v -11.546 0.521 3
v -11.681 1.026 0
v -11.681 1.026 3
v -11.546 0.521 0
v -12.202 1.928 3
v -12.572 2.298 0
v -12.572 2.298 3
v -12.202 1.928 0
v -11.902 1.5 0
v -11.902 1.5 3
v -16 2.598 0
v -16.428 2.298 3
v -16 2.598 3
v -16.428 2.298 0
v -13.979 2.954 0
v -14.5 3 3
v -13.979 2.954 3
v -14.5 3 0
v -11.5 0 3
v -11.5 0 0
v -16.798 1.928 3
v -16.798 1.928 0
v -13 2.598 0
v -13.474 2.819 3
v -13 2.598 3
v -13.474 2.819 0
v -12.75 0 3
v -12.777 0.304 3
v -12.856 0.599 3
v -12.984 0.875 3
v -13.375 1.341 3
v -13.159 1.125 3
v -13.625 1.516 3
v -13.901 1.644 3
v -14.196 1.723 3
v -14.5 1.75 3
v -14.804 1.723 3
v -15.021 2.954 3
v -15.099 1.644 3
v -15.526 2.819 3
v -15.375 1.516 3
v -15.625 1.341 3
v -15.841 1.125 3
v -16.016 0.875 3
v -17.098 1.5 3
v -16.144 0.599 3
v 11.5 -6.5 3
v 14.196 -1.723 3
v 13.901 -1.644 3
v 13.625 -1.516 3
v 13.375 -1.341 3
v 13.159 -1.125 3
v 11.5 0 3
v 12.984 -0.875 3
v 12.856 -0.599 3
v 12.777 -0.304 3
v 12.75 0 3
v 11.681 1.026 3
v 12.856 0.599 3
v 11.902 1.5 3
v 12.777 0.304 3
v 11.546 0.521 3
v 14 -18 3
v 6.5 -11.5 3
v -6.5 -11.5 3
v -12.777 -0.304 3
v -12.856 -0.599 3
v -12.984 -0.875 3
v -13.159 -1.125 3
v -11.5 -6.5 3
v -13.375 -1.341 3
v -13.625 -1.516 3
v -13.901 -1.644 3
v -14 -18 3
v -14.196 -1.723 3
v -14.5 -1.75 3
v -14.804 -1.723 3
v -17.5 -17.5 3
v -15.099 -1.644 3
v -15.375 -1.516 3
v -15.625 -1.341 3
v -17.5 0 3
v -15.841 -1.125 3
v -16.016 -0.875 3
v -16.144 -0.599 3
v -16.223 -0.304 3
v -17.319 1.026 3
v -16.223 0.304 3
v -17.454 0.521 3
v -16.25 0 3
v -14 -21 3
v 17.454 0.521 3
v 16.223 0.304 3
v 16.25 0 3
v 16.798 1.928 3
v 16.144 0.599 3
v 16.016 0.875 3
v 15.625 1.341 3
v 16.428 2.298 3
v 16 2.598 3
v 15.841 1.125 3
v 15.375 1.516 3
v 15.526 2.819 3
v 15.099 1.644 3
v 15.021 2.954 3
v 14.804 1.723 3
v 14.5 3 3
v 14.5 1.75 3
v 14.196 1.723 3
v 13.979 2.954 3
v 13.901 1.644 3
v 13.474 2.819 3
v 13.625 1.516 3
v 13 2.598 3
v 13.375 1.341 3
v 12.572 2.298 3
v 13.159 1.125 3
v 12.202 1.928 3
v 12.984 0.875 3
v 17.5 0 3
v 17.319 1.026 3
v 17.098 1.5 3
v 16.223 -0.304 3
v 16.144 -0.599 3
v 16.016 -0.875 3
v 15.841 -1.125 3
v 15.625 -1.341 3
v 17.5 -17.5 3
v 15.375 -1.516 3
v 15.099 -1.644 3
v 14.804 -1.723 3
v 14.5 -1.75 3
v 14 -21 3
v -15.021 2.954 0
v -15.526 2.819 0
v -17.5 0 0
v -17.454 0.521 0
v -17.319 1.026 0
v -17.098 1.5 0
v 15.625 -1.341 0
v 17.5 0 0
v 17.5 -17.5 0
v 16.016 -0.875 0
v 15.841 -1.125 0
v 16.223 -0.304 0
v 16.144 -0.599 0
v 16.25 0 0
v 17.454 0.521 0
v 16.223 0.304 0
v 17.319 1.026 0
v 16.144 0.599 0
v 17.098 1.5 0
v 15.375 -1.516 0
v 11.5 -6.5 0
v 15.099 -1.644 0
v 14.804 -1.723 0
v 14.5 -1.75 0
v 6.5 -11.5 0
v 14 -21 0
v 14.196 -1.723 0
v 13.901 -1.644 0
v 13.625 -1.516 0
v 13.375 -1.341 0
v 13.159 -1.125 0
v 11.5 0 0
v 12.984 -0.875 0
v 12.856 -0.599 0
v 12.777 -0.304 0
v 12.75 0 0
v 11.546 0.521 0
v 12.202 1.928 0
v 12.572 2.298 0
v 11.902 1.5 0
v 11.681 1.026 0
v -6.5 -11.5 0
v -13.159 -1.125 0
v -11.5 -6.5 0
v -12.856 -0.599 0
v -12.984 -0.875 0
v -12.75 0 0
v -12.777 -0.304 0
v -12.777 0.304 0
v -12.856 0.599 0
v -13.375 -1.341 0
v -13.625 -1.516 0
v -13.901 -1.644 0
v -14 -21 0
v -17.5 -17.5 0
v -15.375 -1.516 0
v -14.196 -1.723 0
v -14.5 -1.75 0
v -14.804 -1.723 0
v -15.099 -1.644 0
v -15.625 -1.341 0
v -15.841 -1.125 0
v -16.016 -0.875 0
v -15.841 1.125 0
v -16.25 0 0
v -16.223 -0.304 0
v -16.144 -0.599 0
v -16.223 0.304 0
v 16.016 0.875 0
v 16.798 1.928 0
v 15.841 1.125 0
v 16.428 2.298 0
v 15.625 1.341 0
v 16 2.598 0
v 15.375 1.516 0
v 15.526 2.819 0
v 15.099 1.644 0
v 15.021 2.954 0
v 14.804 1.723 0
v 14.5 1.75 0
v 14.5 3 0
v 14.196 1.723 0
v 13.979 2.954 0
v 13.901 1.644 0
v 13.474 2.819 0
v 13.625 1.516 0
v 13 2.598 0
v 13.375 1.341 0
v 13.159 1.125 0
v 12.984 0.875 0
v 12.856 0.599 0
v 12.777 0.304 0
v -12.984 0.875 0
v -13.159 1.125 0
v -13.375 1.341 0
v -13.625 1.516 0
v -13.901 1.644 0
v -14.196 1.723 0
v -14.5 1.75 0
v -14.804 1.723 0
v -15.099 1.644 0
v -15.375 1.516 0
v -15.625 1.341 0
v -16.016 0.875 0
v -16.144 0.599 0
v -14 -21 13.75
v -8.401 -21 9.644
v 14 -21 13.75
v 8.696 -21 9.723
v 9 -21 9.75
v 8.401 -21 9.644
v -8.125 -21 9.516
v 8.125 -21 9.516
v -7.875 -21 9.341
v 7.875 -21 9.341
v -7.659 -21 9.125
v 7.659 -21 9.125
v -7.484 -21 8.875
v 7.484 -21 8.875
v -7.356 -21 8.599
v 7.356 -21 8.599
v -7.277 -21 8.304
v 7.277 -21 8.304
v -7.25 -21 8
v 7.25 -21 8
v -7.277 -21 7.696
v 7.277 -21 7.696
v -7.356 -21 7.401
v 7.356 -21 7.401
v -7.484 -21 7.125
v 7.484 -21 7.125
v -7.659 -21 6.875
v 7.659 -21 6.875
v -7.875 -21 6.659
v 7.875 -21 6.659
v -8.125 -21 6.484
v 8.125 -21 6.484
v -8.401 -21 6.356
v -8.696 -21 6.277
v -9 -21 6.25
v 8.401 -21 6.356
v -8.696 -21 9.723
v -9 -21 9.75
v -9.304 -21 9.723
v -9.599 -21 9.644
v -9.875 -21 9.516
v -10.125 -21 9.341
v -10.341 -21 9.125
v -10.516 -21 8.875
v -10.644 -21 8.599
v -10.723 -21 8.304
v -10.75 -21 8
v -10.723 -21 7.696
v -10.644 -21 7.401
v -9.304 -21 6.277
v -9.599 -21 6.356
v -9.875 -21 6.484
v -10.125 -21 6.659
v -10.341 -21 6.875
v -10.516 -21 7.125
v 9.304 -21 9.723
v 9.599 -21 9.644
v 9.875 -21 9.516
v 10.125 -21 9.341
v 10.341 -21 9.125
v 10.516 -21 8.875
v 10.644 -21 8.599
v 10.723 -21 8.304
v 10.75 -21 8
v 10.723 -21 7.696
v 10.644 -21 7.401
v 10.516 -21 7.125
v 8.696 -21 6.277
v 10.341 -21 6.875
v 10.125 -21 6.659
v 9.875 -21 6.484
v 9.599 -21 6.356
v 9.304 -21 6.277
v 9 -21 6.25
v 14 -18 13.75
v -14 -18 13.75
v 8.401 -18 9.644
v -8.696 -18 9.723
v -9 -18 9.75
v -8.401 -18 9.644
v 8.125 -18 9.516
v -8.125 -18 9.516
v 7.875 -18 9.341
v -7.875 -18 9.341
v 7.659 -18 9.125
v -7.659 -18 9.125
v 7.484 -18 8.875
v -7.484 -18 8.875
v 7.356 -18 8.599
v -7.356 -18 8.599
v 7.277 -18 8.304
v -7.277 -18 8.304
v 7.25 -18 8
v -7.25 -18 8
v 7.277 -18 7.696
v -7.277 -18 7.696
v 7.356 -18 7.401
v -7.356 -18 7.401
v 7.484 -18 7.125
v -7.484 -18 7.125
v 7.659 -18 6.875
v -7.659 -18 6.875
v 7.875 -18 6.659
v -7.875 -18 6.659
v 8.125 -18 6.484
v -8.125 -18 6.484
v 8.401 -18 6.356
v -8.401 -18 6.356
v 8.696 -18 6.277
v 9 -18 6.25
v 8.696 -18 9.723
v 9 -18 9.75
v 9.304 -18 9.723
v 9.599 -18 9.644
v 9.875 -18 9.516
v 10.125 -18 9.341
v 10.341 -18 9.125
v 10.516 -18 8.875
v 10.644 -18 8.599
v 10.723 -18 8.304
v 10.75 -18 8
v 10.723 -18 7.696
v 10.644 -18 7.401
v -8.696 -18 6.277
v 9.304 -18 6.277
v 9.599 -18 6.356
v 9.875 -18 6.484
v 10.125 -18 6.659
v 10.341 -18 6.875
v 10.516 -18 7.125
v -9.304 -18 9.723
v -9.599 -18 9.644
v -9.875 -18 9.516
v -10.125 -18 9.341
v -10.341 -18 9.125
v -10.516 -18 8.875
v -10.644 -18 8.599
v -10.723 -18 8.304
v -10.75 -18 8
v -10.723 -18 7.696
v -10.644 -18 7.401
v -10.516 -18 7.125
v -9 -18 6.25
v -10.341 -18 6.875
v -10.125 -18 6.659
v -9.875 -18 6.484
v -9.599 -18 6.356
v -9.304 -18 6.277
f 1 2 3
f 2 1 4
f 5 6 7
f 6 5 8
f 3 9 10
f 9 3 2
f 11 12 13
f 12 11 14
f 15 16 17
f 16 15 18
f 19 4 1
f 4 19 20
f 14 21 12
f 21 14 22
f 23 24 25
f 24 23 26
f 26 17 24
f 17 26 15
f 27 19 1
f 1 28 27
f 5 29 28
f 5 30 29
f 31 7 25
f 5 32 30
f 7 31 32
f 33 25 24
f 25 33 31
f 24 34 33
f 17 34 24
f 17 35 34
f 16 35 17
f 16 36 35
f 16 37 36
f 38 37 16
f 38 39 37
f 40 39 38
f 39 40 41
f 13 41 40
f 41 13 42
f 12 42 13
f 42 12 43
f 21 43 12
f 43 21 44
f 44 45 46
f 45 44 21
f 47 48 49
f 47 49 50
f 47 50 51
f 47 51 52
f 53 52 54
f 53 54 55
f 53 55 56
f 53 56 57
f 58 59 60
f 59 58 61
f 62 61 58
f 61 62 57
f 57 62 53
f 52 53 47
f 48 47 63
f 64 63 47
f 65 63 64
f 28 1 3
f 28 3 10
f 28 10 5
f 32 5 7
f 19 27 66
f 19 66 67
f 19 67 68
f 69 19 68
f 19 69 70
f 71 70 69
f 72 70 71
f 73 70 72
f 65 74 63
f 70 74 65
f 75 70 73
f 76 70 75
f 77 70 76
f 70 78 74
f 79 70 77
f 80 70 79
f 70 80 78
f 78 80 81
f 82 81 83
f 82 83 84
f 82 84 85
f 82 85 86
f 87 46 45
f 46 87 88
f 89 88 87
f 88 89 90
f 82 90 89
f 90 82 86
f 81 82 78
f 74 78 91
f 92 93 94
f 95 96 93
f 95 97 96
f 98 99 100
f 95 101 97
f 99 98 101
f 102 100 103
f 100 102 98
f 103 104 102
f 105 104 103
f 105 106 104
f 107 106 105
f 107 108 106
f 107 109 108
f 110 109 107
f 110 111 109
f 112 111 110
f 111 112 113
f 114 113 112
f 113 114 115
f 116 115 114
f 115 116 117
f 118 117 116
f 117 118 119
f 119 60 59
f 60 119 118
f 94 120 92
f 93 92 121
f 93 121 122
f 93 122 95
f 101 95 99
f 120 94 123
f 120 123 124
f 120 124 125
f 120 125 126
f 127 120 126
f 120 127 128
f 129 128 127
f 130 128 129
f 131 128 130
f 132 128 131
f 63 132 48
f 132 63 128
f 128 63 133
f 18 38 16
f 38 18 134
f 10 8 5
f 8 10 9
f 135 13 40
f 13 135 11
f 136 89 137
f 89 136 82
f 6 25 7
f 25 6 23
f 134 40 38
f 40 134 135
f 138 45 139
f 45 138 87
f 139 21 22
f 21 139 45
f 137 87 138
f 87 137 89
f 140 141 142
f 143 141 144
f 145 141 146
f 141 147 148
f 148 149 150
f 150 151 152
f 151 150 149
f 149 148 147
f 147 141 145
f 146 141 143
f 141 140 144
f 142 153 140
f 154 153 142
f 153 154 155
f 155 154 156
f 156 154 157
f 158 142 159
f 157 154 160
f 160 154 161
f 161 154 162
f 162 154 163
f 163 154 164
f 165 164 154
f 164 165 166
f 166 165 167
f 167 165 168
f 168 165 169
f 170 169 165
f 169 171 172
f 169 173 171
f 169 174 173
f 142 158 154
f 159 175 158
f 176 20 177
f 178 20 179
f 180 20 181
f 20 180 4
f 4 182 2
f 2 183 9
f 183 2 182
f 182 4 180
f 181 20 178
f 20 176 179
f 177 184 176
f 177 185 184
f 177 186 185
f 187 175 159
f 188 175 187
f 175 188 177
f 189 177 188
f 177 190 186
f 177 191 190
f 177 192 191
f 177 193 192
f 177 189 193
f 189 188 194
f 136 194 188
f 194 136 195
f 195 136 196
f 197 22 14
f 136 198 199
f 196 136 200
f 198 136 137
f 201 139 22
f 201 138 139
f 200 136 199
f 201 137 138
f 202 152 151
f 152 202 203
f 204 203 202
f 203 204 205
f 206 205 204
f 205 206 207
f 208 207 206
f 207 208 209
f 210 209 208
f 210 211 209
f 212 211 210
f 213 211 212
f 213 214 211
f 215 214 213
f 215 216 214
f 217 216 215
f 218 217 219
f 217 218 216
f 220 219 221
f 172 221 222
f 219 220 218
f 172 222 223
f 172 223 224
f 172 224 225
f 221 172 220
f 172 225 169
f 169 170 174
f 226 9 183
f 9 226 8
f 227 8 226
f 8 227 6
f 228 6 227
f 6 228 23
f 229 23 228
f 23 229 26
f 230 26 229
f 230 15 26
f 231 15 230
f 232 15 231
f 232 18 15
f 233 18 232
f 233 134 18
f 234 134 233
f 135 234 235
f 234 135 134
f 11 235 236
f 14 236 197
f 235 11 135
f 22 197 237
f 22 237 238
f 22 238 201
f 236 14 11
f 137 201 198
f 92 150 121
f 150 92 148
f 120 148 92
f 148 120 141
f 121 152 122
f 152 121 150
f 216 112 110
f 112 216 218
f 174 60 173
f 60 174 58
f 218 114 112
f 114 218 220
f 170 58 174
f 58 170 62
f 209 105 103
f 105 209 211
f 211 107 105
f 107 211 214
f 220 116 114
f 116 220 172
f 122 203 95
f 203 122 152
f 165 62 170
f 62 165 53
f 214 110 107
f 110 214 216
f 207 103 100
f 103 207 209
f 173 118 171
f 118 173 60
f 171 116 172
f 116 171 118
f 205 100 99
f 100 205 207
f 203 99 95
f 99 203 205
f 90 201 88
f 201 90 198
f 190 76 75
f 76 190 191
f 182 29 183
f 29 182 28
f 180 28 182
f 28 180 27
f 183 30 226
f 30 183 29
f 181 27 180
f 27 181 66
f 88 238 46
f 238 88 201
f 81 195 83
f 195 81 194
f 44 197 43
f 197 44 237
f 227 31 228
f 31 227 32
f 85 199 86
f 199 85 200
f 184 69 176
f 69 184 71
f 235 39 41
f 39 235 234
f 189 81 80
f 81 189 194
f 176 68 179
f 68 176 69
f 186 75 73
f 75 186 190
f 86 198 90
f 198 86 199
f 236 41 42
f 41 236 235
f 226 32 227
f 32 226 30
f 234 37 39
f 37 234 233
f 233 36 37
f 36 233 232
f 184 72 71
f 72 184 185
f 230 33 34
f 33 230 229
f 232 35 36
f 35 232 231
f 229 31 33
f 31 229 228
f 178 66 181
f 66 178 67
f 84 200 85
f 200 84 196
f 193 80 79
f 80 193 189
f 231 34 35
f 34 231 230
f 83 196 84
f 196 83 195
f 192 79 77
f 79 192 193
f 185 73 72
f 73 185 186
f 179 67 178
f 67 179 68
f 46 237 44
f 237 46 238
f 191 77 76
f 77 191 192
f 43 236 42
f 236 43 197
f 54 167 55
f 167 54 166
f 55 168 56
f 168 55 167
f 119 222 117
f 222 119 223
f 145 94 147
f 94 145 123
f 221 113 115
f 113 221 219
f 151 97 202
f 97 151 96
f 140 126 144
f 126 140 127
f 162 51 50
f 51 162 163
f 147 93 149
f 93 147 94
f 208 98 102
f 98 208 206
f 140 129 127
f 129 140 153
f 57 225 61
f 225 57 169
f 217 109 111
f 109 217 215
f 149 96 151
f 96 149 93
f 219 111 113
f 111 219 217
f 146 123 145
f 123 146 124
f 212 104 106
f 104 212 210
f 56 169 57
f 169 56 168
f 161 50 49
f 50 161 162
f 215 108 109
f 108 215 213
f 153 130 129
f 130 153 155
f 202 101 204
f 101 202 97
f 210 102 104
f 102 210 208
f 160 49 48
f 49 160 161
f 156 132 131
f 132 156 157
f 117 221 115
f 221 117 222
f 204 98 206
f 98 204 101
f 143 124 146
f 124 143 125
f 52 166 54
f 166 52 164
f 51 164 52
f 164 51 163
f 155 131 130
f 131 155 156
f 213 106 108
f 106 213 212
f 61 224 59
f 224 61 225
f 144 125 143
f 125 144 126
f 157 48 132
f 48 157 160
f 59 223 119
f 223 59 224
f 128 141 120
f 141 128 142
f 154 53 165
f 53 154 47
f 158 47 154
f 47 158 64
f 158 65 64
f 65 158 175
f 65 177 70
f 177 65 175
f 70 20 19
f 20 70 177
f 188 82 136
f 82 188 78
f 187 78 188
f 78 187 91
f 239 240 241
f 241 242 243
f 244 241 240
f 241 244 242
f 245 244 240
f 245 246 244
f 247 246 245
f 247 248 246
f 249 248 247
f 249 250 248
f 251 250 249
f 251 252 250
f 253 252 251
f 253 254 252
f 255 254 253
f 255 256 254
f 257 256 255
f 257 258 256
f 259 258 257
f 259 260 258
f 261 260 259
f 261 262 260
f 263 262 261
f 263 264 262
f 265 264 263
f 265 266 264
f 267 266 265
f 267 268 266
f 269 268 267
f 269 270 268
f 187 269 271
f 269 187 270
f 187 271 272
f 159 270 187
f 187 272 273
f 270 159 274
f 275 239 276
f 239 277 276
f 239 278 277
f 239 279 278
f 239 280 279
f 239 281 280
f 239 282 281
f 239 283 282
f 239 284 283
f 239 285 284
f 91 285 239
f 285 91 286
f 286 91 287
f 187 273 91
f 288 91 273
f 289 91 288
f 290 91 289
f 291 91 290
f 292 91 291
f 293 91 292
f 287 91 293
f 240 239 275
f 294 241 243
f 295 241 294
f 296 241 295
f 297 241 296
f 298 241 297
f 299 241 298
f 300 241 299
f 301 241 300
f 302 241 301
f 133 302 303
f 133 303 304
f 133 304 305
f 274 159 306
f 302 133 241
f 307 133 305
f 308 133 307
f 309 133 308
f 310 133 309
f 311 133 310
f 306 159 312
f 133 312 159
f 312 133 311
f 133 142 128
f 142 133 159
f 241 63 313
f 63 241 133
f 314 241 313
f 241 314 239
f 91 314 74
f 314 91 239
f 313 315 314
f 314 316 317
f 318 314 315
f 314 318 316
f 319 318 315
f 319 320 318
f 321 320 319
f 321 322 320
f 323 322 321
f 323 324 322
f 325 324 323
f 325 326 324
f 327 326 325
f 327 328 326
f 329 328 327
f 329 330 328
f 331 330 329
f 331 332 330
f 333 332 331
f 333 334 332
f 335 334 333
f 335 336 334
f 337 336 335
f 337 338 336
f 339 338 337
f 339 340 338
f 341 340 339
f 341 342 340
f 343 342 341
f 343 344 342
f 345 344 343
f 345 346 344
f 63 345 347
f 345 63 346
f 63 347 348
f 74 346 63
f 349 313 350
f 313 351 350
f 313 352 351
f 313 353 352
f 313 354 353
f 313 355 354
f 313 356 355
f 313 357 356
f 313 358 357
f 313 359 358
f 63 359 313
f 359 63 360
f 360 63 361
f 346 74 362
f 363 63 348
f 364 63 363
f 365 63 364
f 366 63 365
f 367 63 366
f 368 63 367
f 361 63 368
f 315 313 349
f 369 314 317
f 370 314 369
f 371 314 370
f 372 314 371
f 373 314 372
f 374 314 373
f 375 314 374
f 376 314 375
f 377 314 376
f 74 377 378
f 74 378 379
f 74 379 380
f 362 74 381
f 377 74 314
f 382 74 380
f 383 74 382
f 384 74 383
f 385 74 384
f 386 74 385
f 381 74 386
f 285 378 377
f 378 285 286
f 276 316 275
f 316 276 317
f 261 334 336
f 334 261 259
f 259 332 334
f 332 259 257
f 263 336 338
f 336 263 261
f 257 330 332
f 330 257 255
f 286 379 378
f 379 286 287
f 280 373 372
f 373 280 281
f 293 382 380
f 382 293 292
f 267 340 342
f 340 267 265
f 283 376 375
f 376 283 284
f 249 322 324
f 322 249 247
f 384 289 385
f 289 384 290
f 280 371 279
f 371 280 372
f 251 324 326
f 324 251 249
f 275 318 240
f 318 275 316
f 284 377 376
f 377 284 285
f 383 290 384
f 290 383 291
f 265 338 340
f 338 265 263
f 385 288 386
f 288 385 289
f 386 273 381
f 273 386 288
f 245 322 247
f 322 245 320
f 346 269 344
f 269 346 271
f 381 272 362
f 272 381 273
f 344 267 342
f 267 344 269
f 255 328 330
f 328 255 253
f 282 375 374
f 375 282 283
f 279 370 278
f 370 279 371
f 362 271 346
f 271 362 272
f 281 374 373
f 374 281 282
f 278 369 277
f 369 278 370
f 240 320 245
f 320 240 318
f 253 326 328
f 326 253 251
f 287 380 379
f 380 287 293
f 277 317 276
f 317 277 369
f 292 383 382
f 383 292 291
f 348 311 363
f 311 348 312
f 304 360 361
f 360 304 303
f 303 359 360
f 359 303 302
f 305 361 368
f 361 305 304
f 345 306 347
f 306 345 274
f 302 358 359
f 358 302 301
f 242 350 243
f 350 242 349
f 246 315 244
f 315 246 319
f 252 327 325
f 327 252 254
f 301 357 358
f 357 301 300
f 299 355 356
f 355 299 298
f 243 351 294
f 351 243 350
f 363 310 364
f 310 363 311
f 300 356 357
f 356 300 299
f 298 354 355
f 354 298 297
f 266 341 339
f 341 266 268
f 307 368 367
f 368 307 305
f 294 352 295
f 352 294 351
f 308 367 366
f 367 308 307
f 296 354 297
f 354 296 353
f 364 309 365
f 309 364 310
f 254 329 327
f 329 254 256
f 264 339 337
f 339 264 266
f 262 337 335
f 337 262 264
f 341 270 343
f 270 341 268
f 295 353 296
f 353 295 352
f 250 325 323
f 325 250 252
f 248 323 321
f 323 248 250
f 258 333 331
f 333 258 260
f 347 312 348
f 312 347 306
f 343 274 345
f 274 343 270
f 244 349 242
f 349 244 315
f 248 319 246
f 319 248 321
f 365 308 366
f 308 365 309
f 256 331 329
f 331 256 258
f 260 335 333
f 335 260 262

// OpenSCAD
$fn=36;

mount_hole_dist = 29;
mount_hole_d = 3.5; //M3 clearance
mount_arm_w = 6;
mount_arm_l = 11.5; //From hole center to horizontal bar
mount_arm_inset = 5; //Corner "chamfer"

mount_thickness = 3;

//Distance from bracket inner face to sensor axis (typically X as mounted on printer).
//Offset of 6mm puts the edge of the bltouch mount flange near the rear face of the bracket,
//but this may put it too close to the hotend heater block
sensor_offset_x = 8;

 //Height between carriage mount holes and sensor upper surface (Z as mounted on printer).
 //bltouch sensor is about 40mm when retracted, and the tip should in that position be about 2.3-4.3mm above the
 //hotend nozzle tip
sensor_offset_z = 21;
sensor_offset_y = 0;  //Offset between sensor axis and center of carriage (midpoint between mount holes

bltouch_hole_d = 3.5; //M3 clearance
bltouch_hole_offset = 9; //Hole distance from center axis
bltouch_w = 11.5; //Width of sensor mount plate (not including connector)
bltouch_l = 28; //Guesstimation


total_width = mount_hole_dist+mount_arm_w;
corner_inset_l = (total_width-bltouch_l)/2+sensor_offset_y;
corner_inset_r = (total_width-bltouch_l)/2-sensor_offset_y;

difference() {
    union() {
        
        //Rounded ends
        for(i=[-1,1]) {
            translate([i*mount_hole_dist/2,0,0]) {
               cylinder(d=mount_arm_w, h=mount_thickness);
            }
            
        }
        
        //Carriage mount outline (vertical part)
        arm_points = [
        
            //Upper left
            [-mount_hole_dist/2+mount_arm_w/2, 0],
            [-mount_hole_dist/2-mount_arm_w/2, 0],
        
            //Lower left
            [-mount_hole_dist/2-mount_arm_w/2, -sensor_offset_z+corner_inset_l],
            [-mount_hole_dist/2-mount_arm_w/2+corner_inset_l, -sensor_offset_z],
        
        
            //Lower right
            [+mount_hole_dist/2+mount_arm_w/2-corner_inset_r, -sensor_offset_z],
            [+mount_hole_dist/2+mount_arm_w/2, -sensor_offset_z+corner_inset_r],
        
        
            //Upper right
            [+mount_hole_dist/2+mount_arm_w/2, 0],
            [+mount_hole_dist/2-mount_arm_w/2, 0],
        
            //Middle "valley"
            [+mount_hole_dist/2-mount_arm_w/2, -mount_arm_l+mount_arm_inset],
            [+mount_hole_dist/2-mount_arm_w/2-mount_arm_inset, -mount_arm_l],
            [-mount_hole_dist/2+mount_arm_w/2+mount_arm_inset, -mount_arm_l],
            [-mount_hole_dist/2+mount_arm_w/2, -mount_arm_l+mount_arm_inset],
        ];
        
        linear_extrude(mount_thickness) polygon(points=arm_points);
        
        
        //Sensor mount (horizontal part
        translate([-bltouch_l/2+sensor_offset_y, -sensor_offset_z]) {
            cube([bltouch_l, mount_thickness, bltouch_w/2+sensor_offset_x]);
        }
    }
    
    
    
    union() {
        //Screw holes
        for(i=[-1,1]) translate([i*mount_hole_dist/2,0,-0.1]) cylinder(d=mount_hole_d, h=mount_thickness+0.2);
            
        //Holes for mounting bltouch sensor
        translate([sensor_offset_y, -sensor_offset_z, sensor_offset_x]) {
            rotate([-90,0,0])
                for(i=[-1,1]) {
                    translate([i*bltouch_hole_offset, 0, -0.1]) cylinder(d=bltouch_hole_d, h=mount_thickness+0.2);
                }
        }
    }
    
    
    
}
